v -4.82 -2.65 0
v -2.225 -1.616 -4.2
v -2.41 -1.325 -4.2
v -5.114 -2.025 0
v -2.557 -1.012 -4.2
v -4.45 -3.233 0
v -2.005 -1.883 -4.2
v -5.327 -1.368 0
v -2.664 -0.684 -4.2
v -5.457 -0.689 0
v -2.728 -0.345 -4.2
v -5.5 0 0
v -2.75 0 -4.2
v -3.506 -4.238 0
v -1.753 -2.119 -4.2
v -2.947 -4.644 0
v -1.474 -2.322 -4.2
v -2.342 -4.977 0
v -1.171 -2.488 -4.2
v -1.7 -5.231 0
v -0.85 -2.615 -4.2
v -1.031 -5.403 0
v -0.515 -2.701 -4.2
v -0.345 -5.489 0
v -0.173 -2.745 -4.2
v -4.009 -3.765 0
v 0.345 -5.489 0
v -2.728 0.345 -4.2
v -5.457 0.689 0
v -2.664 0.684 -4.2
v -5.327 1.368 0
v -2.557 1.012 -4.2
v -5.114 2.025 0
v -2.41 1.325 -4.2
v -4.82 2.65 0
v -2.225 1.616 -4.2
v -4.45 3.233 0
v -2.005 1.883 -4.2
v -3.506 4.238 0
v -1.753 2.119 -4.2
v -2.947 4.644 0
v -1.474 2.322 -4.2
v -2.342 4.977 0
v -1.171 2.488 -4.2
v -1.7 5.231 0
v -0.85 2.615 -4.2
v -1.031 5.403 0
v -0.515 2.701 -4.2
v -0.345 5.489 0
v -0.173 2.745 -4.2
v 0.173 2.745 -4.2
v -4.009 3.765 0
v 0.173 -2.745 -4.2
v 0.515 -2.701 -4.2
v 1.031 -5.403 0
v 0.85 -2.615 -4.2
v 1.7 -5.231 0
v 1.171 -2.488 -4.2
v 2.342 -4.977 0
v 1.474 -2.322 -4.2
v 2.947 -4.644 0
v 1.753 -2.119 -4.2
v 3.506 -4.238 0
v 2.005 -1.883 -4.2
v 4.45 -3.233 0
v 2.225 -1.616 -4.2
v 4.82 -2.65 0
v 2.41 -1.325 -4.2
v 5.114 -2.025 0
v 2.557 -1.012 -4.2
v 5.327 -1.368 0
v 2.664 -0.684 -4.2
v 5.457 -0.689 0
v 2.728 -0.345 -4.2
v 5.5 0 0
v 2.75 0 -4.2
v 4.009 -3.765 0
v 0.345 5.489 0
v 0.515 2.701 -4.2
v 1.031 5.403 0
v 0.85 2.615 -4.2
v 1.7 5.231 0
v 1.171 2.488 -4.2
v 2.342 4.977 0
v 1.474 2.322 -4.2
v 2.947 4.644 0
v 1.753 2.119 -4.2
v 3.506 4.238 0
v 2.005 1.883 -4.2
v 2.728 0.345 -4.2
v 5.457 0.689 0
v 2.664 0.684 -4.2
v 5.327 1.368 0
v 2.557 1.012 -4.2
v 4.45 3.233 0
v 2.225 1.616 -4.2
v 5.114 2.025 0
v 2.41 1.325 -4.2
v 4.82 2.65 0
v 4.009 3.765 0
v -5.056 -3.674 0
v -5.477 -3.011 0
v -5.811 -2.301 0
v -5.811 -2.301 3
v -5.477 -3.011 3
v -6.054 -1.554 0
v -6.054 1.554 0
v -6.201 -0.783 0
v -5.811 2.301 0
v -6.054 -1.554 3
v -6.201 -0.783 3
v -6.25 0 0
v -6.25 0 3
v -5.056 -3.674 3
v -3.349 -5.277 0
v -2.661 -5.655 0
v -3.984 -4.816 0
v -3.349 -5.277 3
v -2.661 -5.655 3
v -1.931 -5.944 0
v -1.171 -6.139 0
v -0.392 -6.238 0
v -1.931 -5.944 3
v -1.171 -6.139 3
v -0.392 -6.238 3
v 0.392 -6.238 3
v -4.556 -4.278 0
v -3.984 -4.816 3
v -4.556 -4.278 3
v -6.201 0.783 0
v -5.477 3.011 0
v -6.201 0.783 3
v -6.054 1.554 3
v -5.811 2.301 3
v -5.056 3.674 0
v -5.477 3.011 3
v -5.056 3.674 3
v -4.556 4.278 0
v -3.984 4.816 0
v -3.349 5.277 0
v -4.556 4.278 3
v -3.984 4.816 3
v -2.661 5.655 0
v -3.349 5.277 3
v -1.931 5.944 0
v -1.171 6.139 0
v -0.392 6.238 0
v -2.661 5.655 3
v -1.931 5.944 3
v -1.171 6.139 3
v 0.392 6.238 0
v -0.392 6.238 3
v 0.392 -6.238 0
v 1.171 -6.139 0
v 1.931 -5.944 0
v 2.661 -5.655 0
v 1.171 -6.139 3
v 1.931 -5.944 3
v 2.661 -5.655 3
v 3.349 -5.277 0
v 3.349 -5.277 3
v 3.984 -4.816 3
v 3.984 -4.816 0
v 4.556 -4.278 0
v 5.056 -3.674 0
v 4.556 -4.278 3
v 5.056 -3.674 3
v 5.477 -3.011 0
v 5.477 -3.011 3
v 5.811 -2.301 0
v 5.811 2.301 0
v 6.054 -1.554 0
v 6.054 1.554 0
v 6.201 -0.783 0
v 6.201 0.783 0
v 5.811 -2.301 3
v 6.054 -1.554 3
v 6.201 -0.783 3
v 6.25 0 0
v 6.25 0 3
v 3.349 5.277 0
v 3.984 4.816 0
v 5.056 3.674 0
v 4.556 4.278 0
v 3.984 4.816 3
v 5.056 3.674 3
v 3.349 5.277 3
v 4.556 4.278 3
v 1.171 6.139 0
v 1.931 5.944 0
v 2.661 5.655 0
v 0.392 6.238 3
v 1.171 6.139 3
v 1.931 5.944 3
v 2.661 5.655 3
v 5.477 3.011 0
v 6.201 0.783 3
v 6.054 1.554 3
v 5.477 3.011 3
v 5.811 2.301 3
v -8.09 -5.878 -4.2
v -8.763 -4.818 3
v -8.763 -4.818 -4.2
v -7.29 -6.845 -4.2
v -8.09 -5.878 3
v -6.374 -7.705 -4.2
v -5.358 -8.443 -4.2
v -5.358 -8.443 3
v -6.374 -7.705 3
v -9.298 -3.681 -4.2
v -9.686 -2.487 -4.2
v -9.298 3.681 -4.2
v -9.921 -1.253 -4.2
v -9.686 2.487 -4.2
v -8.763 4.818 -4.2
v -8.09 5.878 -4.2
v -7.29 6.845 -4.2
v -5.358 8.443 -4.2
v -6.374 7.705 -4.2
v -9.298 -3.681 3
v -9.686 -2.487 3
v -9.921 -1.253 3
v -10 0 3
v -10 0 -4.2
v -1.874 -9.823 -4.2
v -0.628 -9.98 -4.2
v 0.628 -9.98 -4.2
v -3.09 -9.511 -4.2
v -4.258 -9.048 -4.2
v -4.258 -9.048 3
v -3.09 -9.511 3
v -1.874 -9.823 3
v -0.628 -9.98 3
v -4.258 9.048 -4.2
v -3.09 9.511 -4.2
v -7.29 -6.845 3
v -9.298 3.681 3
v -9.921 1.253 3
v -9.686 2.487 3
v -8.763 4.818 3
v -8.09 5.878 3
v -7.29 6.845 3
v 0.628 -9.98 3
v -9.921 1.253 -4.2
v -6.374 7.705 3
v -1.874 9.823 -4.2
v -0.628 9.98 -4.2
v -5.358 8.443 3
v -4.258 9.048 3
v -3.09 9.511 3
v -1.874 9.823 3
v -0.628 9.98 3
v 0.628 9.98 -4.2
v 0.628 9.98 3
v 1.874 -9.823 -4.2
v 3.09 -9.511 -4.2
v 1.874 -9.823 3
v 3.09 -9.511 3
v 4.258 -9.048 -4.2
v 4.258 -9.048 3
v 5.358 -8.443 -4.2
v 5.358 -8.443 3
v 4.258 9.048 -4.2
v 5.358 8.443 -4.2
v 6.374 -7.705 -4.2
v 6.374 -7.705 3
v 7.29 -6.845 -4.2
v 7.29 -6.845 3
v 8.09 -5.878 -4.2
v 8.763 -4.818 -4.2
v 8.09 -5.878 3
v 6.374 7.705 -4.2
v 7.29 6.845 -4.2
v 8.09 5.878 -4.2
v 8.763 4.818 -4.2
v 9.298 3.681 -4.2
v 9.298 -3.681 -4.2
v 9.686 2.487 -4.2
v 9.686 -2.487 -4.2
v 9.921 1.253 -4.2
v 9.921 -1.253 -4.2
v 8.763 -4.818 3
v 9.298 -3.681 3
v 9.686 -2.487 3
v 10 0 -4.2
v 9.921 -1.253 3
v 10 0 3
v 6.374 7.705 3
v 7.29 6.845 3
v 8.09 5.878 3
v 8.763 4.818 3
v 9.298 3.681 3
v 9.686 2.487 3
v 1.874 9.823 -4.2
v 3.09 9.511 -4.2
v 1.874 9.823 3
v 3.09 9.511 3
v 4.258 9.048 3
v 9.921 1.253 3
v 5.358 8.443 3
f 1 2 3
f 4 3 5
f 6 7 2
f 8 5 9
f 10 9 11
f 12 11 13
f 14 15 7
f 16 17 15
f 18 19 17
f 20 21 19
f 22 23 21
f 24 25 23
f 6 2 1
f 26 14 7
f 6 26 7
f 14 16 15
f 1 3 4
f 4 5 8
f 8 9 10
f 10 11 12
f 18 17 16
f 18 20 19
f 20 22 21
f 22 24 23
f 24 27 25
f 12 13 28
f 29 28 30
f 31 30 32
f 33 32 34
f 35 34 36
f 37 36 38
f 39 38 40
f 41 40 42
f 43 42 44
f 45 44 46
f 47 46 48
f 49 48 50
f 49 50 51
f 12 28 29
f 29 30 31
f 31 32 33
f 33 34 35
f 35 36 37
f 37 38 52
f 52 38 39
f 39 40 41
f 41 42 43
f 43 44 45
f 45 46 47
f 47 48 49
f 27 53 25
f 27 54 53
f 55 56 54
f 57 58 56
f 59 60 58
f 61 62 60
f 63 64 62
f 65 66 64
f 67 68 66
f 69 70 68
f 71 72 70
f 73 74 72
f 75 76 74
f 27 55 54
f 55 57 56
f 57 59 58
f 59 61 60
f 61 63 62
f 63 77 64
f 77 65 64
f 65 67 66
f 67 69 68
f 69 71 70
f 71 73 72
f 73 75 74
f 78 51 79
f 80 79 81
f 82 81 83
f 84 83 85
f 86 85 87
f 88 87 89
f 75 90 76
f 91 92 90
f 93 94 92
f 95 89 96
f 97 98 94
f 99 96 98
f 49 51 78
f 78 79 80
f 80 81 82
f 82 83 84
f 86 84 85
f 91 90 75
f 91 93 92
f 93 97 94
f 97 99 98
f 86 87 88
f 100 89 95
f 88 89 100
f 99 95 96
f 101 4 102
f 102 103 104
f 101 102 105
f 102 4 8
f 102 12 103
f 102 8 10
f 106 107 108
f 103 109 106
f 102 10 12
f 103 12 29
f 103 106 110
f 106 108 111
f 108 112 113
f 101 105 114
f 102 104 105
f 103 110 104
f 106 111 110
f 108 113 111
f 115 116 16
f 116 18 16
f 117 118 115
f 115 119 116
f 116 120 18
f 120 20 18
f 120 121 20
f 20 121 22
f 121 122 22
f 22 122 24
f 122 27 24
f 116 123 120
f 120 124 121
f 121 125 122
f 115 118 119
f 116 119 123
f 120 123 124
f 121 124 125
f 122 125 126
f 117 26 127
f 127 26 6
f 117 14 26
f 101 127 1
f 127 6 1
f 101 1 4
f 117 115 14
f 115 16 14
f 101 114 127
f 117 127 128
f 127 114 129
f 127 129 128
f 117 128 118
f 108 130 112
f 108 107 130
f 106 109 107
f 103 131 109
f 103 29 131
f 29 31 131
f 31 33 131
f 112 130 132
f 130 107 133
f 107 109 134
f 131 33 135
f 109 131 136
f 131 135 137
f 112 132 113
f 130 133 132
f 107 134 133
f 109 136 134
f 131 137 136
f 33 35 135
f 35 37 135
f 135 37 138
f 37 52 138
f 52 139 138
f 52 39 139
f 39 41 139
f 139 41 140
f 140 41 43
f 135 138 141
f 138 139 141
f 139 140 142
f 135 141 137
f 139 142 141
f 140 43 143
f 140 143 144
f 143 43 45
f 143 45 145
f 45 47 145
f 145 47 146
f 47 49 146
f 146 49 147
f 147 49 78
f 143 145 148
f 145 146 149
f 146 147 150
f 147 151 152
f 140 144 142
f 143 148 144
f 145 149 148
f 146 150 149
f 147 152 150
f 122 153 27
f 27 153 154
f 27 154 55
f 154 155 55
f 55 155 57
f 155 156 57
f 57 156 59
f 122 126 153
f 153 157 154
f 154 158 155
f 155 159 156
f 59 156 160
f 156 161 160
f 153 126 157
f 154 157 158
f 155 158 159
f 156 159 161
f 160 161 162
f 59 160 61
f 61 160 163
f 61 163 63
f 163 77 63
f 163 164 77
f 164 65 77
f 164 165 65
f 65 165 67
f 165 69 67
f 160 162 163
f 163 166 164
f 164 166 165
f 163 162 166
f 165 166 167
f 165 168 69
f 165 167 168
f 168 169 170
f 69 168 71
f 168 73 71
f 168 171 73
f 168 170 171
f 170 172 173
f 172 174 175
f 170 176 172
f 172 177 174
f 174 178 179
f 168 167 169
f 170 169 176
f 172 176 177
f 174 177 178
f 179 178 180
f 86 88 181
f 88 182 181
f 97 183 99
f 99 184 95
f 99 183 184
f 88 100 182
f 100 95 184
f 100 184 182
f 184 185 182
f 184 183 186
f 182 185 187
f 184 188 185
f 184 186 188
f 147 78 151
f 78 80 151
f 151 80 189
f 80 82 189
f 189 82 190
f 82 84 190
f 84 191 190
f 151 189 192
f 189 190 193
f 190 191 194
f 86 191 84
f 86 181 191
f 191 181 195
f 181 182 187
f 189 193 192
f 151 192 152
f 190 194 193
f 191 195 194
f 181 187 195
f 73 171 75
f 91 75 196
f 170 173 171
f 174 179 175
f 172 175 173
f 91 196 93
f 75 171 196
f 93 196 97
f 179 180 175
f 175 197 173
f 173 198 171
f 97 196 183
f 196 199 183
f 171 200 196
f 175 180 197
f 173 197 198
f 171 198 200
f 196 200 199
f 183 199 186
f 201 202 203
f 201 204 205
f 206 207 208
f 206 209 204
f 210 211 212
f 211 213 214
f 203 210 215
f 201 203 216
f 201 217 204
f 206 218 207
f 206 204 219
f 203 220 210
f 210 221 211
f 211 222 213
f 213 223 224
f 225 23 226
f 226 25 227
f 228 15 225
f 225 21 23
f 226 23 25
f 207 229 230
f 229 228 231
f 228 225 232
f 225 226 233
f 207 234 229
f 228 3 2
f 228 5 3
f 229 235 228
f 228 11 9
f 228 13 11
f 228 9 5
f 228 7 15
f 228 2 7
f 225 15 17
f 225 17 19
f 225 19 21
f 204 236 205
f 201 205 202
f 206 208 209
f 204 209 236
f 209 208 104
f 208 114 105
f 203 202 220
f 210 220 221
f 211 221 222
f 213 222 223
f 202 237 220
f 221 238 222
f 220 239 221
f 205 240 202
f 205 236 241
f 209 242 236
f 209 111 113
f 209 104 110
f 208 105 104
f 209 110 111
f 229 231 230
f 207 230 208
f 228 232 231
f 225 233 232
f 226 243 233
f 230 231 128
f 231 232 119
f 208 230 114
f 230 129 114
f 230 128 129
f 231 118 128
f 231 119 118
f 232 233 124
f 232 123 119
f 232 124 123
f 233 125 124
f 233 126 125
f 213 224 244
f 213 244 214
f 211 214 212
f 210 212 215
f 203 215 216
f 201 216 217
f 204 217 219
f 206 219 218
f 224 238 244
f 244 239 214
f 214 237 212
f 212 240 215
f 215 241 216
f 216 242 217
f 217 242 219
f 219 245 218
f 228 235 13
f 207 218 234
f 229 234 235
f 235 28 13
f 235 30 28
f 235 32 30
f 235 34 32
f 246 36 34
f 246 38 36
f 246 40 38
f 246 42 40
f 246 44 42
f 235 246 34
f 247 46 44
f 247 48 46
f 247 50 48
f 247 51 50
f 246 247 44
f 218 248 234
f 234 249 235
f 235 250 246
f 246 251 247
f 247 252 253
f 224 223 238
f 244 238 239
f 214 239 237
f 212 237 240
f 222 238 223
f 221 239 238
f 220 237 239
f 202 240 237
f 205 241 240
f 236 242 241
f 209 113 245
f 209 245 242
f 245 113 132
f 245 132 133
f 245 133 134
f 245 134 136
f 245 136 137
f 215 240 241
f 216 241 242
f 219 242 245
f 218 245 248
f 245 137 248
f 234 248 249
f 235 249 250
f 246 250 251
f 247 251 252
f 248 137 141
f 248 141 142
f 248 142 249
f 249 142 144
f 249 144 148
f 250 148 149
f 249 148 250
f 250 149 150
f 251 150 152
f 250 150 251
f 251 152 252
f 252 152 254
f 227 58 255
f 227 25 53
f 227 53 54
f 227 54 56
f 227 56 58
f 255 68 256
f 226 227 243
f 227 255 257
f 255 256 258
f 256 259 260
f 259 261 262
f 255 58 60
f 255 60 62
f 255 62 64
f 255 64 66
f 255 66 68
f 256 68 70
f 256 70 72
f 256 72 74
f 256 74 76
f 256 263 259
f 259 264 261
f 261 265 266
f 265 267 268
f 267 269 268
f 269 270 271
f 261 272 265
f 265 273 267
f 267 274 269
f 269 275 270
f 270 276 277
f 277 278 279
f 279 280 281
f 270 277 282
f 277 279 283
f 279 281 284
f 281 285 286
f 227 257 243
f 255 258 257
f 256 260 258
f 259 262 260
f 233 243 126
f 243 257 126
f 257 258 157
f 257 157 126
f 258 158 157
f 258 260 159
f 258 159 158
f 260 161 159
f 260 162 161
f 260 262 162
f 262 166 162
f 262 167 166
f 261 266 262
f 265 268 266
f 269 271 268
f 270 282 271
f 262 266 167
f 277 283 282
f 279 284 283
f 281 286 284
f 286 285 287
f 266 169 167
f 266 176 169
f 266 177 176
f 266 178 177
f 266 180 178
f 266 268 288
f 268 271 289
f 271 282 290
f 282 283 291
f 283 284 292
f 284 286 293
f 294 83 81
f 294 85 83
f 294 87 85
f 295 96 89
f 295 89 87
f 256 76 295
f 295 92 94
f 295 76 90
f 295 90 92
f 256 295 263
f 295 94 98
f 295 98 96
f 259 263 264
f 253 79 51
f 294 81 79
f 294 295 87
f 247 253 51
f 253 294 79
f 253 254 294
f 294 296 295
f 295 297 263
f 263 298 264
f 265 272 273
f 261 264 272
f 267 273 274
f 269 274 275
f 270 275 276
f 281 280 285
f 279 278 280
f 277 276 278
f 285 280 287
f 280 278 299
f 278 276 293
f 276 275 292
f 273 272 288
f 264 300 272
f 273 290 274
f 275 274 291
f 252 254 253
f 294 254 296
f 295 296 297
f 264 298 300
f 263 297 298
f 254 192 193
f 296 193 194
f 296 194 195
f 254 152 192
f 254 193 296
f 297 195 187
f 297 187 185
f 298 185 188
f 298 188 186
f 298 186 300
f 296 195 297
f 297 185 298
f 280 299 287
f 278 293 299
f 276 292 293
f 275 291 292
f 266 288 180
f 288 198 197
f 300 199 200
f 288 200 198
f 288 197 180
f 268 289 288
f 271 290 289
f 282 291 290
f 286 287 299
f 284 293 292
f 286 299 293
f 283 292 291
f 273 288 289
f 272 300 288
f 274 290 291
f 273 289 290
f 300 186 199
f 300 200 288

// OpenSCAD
$fn = 50;

difference() {
	union() {
		translate(v = [0, 0, -4.2]) {
			cylinder(h = 7.2, r = 10.0);
		}
	}
	union() {
		translate(v = [0, 0, 0]) {
			rotate(a = [0, 0, 0]) {
				difference() {
					union() {
						translate(v = [0, 0, -7.2]) {
							cylinder(h = 7.2, r = 2.25);
						}
						translate(v = [0, 0, -4.2]) {
							cylinder(h = 4.2, r1 = 2.75, r2 = 5.5);
						}
						translate(v = [0, 0, -7.2]) {
							cylinder(h = 7.2, r = 2.75);
						}
						translate(v = [0, 0, -7.2]) {
							cylinder(h = 7.2, r = 2.25);
						}
					}
					union();
				}
			}
		}
		#cylinder(h = 3, r = 6.25);
	}
}
